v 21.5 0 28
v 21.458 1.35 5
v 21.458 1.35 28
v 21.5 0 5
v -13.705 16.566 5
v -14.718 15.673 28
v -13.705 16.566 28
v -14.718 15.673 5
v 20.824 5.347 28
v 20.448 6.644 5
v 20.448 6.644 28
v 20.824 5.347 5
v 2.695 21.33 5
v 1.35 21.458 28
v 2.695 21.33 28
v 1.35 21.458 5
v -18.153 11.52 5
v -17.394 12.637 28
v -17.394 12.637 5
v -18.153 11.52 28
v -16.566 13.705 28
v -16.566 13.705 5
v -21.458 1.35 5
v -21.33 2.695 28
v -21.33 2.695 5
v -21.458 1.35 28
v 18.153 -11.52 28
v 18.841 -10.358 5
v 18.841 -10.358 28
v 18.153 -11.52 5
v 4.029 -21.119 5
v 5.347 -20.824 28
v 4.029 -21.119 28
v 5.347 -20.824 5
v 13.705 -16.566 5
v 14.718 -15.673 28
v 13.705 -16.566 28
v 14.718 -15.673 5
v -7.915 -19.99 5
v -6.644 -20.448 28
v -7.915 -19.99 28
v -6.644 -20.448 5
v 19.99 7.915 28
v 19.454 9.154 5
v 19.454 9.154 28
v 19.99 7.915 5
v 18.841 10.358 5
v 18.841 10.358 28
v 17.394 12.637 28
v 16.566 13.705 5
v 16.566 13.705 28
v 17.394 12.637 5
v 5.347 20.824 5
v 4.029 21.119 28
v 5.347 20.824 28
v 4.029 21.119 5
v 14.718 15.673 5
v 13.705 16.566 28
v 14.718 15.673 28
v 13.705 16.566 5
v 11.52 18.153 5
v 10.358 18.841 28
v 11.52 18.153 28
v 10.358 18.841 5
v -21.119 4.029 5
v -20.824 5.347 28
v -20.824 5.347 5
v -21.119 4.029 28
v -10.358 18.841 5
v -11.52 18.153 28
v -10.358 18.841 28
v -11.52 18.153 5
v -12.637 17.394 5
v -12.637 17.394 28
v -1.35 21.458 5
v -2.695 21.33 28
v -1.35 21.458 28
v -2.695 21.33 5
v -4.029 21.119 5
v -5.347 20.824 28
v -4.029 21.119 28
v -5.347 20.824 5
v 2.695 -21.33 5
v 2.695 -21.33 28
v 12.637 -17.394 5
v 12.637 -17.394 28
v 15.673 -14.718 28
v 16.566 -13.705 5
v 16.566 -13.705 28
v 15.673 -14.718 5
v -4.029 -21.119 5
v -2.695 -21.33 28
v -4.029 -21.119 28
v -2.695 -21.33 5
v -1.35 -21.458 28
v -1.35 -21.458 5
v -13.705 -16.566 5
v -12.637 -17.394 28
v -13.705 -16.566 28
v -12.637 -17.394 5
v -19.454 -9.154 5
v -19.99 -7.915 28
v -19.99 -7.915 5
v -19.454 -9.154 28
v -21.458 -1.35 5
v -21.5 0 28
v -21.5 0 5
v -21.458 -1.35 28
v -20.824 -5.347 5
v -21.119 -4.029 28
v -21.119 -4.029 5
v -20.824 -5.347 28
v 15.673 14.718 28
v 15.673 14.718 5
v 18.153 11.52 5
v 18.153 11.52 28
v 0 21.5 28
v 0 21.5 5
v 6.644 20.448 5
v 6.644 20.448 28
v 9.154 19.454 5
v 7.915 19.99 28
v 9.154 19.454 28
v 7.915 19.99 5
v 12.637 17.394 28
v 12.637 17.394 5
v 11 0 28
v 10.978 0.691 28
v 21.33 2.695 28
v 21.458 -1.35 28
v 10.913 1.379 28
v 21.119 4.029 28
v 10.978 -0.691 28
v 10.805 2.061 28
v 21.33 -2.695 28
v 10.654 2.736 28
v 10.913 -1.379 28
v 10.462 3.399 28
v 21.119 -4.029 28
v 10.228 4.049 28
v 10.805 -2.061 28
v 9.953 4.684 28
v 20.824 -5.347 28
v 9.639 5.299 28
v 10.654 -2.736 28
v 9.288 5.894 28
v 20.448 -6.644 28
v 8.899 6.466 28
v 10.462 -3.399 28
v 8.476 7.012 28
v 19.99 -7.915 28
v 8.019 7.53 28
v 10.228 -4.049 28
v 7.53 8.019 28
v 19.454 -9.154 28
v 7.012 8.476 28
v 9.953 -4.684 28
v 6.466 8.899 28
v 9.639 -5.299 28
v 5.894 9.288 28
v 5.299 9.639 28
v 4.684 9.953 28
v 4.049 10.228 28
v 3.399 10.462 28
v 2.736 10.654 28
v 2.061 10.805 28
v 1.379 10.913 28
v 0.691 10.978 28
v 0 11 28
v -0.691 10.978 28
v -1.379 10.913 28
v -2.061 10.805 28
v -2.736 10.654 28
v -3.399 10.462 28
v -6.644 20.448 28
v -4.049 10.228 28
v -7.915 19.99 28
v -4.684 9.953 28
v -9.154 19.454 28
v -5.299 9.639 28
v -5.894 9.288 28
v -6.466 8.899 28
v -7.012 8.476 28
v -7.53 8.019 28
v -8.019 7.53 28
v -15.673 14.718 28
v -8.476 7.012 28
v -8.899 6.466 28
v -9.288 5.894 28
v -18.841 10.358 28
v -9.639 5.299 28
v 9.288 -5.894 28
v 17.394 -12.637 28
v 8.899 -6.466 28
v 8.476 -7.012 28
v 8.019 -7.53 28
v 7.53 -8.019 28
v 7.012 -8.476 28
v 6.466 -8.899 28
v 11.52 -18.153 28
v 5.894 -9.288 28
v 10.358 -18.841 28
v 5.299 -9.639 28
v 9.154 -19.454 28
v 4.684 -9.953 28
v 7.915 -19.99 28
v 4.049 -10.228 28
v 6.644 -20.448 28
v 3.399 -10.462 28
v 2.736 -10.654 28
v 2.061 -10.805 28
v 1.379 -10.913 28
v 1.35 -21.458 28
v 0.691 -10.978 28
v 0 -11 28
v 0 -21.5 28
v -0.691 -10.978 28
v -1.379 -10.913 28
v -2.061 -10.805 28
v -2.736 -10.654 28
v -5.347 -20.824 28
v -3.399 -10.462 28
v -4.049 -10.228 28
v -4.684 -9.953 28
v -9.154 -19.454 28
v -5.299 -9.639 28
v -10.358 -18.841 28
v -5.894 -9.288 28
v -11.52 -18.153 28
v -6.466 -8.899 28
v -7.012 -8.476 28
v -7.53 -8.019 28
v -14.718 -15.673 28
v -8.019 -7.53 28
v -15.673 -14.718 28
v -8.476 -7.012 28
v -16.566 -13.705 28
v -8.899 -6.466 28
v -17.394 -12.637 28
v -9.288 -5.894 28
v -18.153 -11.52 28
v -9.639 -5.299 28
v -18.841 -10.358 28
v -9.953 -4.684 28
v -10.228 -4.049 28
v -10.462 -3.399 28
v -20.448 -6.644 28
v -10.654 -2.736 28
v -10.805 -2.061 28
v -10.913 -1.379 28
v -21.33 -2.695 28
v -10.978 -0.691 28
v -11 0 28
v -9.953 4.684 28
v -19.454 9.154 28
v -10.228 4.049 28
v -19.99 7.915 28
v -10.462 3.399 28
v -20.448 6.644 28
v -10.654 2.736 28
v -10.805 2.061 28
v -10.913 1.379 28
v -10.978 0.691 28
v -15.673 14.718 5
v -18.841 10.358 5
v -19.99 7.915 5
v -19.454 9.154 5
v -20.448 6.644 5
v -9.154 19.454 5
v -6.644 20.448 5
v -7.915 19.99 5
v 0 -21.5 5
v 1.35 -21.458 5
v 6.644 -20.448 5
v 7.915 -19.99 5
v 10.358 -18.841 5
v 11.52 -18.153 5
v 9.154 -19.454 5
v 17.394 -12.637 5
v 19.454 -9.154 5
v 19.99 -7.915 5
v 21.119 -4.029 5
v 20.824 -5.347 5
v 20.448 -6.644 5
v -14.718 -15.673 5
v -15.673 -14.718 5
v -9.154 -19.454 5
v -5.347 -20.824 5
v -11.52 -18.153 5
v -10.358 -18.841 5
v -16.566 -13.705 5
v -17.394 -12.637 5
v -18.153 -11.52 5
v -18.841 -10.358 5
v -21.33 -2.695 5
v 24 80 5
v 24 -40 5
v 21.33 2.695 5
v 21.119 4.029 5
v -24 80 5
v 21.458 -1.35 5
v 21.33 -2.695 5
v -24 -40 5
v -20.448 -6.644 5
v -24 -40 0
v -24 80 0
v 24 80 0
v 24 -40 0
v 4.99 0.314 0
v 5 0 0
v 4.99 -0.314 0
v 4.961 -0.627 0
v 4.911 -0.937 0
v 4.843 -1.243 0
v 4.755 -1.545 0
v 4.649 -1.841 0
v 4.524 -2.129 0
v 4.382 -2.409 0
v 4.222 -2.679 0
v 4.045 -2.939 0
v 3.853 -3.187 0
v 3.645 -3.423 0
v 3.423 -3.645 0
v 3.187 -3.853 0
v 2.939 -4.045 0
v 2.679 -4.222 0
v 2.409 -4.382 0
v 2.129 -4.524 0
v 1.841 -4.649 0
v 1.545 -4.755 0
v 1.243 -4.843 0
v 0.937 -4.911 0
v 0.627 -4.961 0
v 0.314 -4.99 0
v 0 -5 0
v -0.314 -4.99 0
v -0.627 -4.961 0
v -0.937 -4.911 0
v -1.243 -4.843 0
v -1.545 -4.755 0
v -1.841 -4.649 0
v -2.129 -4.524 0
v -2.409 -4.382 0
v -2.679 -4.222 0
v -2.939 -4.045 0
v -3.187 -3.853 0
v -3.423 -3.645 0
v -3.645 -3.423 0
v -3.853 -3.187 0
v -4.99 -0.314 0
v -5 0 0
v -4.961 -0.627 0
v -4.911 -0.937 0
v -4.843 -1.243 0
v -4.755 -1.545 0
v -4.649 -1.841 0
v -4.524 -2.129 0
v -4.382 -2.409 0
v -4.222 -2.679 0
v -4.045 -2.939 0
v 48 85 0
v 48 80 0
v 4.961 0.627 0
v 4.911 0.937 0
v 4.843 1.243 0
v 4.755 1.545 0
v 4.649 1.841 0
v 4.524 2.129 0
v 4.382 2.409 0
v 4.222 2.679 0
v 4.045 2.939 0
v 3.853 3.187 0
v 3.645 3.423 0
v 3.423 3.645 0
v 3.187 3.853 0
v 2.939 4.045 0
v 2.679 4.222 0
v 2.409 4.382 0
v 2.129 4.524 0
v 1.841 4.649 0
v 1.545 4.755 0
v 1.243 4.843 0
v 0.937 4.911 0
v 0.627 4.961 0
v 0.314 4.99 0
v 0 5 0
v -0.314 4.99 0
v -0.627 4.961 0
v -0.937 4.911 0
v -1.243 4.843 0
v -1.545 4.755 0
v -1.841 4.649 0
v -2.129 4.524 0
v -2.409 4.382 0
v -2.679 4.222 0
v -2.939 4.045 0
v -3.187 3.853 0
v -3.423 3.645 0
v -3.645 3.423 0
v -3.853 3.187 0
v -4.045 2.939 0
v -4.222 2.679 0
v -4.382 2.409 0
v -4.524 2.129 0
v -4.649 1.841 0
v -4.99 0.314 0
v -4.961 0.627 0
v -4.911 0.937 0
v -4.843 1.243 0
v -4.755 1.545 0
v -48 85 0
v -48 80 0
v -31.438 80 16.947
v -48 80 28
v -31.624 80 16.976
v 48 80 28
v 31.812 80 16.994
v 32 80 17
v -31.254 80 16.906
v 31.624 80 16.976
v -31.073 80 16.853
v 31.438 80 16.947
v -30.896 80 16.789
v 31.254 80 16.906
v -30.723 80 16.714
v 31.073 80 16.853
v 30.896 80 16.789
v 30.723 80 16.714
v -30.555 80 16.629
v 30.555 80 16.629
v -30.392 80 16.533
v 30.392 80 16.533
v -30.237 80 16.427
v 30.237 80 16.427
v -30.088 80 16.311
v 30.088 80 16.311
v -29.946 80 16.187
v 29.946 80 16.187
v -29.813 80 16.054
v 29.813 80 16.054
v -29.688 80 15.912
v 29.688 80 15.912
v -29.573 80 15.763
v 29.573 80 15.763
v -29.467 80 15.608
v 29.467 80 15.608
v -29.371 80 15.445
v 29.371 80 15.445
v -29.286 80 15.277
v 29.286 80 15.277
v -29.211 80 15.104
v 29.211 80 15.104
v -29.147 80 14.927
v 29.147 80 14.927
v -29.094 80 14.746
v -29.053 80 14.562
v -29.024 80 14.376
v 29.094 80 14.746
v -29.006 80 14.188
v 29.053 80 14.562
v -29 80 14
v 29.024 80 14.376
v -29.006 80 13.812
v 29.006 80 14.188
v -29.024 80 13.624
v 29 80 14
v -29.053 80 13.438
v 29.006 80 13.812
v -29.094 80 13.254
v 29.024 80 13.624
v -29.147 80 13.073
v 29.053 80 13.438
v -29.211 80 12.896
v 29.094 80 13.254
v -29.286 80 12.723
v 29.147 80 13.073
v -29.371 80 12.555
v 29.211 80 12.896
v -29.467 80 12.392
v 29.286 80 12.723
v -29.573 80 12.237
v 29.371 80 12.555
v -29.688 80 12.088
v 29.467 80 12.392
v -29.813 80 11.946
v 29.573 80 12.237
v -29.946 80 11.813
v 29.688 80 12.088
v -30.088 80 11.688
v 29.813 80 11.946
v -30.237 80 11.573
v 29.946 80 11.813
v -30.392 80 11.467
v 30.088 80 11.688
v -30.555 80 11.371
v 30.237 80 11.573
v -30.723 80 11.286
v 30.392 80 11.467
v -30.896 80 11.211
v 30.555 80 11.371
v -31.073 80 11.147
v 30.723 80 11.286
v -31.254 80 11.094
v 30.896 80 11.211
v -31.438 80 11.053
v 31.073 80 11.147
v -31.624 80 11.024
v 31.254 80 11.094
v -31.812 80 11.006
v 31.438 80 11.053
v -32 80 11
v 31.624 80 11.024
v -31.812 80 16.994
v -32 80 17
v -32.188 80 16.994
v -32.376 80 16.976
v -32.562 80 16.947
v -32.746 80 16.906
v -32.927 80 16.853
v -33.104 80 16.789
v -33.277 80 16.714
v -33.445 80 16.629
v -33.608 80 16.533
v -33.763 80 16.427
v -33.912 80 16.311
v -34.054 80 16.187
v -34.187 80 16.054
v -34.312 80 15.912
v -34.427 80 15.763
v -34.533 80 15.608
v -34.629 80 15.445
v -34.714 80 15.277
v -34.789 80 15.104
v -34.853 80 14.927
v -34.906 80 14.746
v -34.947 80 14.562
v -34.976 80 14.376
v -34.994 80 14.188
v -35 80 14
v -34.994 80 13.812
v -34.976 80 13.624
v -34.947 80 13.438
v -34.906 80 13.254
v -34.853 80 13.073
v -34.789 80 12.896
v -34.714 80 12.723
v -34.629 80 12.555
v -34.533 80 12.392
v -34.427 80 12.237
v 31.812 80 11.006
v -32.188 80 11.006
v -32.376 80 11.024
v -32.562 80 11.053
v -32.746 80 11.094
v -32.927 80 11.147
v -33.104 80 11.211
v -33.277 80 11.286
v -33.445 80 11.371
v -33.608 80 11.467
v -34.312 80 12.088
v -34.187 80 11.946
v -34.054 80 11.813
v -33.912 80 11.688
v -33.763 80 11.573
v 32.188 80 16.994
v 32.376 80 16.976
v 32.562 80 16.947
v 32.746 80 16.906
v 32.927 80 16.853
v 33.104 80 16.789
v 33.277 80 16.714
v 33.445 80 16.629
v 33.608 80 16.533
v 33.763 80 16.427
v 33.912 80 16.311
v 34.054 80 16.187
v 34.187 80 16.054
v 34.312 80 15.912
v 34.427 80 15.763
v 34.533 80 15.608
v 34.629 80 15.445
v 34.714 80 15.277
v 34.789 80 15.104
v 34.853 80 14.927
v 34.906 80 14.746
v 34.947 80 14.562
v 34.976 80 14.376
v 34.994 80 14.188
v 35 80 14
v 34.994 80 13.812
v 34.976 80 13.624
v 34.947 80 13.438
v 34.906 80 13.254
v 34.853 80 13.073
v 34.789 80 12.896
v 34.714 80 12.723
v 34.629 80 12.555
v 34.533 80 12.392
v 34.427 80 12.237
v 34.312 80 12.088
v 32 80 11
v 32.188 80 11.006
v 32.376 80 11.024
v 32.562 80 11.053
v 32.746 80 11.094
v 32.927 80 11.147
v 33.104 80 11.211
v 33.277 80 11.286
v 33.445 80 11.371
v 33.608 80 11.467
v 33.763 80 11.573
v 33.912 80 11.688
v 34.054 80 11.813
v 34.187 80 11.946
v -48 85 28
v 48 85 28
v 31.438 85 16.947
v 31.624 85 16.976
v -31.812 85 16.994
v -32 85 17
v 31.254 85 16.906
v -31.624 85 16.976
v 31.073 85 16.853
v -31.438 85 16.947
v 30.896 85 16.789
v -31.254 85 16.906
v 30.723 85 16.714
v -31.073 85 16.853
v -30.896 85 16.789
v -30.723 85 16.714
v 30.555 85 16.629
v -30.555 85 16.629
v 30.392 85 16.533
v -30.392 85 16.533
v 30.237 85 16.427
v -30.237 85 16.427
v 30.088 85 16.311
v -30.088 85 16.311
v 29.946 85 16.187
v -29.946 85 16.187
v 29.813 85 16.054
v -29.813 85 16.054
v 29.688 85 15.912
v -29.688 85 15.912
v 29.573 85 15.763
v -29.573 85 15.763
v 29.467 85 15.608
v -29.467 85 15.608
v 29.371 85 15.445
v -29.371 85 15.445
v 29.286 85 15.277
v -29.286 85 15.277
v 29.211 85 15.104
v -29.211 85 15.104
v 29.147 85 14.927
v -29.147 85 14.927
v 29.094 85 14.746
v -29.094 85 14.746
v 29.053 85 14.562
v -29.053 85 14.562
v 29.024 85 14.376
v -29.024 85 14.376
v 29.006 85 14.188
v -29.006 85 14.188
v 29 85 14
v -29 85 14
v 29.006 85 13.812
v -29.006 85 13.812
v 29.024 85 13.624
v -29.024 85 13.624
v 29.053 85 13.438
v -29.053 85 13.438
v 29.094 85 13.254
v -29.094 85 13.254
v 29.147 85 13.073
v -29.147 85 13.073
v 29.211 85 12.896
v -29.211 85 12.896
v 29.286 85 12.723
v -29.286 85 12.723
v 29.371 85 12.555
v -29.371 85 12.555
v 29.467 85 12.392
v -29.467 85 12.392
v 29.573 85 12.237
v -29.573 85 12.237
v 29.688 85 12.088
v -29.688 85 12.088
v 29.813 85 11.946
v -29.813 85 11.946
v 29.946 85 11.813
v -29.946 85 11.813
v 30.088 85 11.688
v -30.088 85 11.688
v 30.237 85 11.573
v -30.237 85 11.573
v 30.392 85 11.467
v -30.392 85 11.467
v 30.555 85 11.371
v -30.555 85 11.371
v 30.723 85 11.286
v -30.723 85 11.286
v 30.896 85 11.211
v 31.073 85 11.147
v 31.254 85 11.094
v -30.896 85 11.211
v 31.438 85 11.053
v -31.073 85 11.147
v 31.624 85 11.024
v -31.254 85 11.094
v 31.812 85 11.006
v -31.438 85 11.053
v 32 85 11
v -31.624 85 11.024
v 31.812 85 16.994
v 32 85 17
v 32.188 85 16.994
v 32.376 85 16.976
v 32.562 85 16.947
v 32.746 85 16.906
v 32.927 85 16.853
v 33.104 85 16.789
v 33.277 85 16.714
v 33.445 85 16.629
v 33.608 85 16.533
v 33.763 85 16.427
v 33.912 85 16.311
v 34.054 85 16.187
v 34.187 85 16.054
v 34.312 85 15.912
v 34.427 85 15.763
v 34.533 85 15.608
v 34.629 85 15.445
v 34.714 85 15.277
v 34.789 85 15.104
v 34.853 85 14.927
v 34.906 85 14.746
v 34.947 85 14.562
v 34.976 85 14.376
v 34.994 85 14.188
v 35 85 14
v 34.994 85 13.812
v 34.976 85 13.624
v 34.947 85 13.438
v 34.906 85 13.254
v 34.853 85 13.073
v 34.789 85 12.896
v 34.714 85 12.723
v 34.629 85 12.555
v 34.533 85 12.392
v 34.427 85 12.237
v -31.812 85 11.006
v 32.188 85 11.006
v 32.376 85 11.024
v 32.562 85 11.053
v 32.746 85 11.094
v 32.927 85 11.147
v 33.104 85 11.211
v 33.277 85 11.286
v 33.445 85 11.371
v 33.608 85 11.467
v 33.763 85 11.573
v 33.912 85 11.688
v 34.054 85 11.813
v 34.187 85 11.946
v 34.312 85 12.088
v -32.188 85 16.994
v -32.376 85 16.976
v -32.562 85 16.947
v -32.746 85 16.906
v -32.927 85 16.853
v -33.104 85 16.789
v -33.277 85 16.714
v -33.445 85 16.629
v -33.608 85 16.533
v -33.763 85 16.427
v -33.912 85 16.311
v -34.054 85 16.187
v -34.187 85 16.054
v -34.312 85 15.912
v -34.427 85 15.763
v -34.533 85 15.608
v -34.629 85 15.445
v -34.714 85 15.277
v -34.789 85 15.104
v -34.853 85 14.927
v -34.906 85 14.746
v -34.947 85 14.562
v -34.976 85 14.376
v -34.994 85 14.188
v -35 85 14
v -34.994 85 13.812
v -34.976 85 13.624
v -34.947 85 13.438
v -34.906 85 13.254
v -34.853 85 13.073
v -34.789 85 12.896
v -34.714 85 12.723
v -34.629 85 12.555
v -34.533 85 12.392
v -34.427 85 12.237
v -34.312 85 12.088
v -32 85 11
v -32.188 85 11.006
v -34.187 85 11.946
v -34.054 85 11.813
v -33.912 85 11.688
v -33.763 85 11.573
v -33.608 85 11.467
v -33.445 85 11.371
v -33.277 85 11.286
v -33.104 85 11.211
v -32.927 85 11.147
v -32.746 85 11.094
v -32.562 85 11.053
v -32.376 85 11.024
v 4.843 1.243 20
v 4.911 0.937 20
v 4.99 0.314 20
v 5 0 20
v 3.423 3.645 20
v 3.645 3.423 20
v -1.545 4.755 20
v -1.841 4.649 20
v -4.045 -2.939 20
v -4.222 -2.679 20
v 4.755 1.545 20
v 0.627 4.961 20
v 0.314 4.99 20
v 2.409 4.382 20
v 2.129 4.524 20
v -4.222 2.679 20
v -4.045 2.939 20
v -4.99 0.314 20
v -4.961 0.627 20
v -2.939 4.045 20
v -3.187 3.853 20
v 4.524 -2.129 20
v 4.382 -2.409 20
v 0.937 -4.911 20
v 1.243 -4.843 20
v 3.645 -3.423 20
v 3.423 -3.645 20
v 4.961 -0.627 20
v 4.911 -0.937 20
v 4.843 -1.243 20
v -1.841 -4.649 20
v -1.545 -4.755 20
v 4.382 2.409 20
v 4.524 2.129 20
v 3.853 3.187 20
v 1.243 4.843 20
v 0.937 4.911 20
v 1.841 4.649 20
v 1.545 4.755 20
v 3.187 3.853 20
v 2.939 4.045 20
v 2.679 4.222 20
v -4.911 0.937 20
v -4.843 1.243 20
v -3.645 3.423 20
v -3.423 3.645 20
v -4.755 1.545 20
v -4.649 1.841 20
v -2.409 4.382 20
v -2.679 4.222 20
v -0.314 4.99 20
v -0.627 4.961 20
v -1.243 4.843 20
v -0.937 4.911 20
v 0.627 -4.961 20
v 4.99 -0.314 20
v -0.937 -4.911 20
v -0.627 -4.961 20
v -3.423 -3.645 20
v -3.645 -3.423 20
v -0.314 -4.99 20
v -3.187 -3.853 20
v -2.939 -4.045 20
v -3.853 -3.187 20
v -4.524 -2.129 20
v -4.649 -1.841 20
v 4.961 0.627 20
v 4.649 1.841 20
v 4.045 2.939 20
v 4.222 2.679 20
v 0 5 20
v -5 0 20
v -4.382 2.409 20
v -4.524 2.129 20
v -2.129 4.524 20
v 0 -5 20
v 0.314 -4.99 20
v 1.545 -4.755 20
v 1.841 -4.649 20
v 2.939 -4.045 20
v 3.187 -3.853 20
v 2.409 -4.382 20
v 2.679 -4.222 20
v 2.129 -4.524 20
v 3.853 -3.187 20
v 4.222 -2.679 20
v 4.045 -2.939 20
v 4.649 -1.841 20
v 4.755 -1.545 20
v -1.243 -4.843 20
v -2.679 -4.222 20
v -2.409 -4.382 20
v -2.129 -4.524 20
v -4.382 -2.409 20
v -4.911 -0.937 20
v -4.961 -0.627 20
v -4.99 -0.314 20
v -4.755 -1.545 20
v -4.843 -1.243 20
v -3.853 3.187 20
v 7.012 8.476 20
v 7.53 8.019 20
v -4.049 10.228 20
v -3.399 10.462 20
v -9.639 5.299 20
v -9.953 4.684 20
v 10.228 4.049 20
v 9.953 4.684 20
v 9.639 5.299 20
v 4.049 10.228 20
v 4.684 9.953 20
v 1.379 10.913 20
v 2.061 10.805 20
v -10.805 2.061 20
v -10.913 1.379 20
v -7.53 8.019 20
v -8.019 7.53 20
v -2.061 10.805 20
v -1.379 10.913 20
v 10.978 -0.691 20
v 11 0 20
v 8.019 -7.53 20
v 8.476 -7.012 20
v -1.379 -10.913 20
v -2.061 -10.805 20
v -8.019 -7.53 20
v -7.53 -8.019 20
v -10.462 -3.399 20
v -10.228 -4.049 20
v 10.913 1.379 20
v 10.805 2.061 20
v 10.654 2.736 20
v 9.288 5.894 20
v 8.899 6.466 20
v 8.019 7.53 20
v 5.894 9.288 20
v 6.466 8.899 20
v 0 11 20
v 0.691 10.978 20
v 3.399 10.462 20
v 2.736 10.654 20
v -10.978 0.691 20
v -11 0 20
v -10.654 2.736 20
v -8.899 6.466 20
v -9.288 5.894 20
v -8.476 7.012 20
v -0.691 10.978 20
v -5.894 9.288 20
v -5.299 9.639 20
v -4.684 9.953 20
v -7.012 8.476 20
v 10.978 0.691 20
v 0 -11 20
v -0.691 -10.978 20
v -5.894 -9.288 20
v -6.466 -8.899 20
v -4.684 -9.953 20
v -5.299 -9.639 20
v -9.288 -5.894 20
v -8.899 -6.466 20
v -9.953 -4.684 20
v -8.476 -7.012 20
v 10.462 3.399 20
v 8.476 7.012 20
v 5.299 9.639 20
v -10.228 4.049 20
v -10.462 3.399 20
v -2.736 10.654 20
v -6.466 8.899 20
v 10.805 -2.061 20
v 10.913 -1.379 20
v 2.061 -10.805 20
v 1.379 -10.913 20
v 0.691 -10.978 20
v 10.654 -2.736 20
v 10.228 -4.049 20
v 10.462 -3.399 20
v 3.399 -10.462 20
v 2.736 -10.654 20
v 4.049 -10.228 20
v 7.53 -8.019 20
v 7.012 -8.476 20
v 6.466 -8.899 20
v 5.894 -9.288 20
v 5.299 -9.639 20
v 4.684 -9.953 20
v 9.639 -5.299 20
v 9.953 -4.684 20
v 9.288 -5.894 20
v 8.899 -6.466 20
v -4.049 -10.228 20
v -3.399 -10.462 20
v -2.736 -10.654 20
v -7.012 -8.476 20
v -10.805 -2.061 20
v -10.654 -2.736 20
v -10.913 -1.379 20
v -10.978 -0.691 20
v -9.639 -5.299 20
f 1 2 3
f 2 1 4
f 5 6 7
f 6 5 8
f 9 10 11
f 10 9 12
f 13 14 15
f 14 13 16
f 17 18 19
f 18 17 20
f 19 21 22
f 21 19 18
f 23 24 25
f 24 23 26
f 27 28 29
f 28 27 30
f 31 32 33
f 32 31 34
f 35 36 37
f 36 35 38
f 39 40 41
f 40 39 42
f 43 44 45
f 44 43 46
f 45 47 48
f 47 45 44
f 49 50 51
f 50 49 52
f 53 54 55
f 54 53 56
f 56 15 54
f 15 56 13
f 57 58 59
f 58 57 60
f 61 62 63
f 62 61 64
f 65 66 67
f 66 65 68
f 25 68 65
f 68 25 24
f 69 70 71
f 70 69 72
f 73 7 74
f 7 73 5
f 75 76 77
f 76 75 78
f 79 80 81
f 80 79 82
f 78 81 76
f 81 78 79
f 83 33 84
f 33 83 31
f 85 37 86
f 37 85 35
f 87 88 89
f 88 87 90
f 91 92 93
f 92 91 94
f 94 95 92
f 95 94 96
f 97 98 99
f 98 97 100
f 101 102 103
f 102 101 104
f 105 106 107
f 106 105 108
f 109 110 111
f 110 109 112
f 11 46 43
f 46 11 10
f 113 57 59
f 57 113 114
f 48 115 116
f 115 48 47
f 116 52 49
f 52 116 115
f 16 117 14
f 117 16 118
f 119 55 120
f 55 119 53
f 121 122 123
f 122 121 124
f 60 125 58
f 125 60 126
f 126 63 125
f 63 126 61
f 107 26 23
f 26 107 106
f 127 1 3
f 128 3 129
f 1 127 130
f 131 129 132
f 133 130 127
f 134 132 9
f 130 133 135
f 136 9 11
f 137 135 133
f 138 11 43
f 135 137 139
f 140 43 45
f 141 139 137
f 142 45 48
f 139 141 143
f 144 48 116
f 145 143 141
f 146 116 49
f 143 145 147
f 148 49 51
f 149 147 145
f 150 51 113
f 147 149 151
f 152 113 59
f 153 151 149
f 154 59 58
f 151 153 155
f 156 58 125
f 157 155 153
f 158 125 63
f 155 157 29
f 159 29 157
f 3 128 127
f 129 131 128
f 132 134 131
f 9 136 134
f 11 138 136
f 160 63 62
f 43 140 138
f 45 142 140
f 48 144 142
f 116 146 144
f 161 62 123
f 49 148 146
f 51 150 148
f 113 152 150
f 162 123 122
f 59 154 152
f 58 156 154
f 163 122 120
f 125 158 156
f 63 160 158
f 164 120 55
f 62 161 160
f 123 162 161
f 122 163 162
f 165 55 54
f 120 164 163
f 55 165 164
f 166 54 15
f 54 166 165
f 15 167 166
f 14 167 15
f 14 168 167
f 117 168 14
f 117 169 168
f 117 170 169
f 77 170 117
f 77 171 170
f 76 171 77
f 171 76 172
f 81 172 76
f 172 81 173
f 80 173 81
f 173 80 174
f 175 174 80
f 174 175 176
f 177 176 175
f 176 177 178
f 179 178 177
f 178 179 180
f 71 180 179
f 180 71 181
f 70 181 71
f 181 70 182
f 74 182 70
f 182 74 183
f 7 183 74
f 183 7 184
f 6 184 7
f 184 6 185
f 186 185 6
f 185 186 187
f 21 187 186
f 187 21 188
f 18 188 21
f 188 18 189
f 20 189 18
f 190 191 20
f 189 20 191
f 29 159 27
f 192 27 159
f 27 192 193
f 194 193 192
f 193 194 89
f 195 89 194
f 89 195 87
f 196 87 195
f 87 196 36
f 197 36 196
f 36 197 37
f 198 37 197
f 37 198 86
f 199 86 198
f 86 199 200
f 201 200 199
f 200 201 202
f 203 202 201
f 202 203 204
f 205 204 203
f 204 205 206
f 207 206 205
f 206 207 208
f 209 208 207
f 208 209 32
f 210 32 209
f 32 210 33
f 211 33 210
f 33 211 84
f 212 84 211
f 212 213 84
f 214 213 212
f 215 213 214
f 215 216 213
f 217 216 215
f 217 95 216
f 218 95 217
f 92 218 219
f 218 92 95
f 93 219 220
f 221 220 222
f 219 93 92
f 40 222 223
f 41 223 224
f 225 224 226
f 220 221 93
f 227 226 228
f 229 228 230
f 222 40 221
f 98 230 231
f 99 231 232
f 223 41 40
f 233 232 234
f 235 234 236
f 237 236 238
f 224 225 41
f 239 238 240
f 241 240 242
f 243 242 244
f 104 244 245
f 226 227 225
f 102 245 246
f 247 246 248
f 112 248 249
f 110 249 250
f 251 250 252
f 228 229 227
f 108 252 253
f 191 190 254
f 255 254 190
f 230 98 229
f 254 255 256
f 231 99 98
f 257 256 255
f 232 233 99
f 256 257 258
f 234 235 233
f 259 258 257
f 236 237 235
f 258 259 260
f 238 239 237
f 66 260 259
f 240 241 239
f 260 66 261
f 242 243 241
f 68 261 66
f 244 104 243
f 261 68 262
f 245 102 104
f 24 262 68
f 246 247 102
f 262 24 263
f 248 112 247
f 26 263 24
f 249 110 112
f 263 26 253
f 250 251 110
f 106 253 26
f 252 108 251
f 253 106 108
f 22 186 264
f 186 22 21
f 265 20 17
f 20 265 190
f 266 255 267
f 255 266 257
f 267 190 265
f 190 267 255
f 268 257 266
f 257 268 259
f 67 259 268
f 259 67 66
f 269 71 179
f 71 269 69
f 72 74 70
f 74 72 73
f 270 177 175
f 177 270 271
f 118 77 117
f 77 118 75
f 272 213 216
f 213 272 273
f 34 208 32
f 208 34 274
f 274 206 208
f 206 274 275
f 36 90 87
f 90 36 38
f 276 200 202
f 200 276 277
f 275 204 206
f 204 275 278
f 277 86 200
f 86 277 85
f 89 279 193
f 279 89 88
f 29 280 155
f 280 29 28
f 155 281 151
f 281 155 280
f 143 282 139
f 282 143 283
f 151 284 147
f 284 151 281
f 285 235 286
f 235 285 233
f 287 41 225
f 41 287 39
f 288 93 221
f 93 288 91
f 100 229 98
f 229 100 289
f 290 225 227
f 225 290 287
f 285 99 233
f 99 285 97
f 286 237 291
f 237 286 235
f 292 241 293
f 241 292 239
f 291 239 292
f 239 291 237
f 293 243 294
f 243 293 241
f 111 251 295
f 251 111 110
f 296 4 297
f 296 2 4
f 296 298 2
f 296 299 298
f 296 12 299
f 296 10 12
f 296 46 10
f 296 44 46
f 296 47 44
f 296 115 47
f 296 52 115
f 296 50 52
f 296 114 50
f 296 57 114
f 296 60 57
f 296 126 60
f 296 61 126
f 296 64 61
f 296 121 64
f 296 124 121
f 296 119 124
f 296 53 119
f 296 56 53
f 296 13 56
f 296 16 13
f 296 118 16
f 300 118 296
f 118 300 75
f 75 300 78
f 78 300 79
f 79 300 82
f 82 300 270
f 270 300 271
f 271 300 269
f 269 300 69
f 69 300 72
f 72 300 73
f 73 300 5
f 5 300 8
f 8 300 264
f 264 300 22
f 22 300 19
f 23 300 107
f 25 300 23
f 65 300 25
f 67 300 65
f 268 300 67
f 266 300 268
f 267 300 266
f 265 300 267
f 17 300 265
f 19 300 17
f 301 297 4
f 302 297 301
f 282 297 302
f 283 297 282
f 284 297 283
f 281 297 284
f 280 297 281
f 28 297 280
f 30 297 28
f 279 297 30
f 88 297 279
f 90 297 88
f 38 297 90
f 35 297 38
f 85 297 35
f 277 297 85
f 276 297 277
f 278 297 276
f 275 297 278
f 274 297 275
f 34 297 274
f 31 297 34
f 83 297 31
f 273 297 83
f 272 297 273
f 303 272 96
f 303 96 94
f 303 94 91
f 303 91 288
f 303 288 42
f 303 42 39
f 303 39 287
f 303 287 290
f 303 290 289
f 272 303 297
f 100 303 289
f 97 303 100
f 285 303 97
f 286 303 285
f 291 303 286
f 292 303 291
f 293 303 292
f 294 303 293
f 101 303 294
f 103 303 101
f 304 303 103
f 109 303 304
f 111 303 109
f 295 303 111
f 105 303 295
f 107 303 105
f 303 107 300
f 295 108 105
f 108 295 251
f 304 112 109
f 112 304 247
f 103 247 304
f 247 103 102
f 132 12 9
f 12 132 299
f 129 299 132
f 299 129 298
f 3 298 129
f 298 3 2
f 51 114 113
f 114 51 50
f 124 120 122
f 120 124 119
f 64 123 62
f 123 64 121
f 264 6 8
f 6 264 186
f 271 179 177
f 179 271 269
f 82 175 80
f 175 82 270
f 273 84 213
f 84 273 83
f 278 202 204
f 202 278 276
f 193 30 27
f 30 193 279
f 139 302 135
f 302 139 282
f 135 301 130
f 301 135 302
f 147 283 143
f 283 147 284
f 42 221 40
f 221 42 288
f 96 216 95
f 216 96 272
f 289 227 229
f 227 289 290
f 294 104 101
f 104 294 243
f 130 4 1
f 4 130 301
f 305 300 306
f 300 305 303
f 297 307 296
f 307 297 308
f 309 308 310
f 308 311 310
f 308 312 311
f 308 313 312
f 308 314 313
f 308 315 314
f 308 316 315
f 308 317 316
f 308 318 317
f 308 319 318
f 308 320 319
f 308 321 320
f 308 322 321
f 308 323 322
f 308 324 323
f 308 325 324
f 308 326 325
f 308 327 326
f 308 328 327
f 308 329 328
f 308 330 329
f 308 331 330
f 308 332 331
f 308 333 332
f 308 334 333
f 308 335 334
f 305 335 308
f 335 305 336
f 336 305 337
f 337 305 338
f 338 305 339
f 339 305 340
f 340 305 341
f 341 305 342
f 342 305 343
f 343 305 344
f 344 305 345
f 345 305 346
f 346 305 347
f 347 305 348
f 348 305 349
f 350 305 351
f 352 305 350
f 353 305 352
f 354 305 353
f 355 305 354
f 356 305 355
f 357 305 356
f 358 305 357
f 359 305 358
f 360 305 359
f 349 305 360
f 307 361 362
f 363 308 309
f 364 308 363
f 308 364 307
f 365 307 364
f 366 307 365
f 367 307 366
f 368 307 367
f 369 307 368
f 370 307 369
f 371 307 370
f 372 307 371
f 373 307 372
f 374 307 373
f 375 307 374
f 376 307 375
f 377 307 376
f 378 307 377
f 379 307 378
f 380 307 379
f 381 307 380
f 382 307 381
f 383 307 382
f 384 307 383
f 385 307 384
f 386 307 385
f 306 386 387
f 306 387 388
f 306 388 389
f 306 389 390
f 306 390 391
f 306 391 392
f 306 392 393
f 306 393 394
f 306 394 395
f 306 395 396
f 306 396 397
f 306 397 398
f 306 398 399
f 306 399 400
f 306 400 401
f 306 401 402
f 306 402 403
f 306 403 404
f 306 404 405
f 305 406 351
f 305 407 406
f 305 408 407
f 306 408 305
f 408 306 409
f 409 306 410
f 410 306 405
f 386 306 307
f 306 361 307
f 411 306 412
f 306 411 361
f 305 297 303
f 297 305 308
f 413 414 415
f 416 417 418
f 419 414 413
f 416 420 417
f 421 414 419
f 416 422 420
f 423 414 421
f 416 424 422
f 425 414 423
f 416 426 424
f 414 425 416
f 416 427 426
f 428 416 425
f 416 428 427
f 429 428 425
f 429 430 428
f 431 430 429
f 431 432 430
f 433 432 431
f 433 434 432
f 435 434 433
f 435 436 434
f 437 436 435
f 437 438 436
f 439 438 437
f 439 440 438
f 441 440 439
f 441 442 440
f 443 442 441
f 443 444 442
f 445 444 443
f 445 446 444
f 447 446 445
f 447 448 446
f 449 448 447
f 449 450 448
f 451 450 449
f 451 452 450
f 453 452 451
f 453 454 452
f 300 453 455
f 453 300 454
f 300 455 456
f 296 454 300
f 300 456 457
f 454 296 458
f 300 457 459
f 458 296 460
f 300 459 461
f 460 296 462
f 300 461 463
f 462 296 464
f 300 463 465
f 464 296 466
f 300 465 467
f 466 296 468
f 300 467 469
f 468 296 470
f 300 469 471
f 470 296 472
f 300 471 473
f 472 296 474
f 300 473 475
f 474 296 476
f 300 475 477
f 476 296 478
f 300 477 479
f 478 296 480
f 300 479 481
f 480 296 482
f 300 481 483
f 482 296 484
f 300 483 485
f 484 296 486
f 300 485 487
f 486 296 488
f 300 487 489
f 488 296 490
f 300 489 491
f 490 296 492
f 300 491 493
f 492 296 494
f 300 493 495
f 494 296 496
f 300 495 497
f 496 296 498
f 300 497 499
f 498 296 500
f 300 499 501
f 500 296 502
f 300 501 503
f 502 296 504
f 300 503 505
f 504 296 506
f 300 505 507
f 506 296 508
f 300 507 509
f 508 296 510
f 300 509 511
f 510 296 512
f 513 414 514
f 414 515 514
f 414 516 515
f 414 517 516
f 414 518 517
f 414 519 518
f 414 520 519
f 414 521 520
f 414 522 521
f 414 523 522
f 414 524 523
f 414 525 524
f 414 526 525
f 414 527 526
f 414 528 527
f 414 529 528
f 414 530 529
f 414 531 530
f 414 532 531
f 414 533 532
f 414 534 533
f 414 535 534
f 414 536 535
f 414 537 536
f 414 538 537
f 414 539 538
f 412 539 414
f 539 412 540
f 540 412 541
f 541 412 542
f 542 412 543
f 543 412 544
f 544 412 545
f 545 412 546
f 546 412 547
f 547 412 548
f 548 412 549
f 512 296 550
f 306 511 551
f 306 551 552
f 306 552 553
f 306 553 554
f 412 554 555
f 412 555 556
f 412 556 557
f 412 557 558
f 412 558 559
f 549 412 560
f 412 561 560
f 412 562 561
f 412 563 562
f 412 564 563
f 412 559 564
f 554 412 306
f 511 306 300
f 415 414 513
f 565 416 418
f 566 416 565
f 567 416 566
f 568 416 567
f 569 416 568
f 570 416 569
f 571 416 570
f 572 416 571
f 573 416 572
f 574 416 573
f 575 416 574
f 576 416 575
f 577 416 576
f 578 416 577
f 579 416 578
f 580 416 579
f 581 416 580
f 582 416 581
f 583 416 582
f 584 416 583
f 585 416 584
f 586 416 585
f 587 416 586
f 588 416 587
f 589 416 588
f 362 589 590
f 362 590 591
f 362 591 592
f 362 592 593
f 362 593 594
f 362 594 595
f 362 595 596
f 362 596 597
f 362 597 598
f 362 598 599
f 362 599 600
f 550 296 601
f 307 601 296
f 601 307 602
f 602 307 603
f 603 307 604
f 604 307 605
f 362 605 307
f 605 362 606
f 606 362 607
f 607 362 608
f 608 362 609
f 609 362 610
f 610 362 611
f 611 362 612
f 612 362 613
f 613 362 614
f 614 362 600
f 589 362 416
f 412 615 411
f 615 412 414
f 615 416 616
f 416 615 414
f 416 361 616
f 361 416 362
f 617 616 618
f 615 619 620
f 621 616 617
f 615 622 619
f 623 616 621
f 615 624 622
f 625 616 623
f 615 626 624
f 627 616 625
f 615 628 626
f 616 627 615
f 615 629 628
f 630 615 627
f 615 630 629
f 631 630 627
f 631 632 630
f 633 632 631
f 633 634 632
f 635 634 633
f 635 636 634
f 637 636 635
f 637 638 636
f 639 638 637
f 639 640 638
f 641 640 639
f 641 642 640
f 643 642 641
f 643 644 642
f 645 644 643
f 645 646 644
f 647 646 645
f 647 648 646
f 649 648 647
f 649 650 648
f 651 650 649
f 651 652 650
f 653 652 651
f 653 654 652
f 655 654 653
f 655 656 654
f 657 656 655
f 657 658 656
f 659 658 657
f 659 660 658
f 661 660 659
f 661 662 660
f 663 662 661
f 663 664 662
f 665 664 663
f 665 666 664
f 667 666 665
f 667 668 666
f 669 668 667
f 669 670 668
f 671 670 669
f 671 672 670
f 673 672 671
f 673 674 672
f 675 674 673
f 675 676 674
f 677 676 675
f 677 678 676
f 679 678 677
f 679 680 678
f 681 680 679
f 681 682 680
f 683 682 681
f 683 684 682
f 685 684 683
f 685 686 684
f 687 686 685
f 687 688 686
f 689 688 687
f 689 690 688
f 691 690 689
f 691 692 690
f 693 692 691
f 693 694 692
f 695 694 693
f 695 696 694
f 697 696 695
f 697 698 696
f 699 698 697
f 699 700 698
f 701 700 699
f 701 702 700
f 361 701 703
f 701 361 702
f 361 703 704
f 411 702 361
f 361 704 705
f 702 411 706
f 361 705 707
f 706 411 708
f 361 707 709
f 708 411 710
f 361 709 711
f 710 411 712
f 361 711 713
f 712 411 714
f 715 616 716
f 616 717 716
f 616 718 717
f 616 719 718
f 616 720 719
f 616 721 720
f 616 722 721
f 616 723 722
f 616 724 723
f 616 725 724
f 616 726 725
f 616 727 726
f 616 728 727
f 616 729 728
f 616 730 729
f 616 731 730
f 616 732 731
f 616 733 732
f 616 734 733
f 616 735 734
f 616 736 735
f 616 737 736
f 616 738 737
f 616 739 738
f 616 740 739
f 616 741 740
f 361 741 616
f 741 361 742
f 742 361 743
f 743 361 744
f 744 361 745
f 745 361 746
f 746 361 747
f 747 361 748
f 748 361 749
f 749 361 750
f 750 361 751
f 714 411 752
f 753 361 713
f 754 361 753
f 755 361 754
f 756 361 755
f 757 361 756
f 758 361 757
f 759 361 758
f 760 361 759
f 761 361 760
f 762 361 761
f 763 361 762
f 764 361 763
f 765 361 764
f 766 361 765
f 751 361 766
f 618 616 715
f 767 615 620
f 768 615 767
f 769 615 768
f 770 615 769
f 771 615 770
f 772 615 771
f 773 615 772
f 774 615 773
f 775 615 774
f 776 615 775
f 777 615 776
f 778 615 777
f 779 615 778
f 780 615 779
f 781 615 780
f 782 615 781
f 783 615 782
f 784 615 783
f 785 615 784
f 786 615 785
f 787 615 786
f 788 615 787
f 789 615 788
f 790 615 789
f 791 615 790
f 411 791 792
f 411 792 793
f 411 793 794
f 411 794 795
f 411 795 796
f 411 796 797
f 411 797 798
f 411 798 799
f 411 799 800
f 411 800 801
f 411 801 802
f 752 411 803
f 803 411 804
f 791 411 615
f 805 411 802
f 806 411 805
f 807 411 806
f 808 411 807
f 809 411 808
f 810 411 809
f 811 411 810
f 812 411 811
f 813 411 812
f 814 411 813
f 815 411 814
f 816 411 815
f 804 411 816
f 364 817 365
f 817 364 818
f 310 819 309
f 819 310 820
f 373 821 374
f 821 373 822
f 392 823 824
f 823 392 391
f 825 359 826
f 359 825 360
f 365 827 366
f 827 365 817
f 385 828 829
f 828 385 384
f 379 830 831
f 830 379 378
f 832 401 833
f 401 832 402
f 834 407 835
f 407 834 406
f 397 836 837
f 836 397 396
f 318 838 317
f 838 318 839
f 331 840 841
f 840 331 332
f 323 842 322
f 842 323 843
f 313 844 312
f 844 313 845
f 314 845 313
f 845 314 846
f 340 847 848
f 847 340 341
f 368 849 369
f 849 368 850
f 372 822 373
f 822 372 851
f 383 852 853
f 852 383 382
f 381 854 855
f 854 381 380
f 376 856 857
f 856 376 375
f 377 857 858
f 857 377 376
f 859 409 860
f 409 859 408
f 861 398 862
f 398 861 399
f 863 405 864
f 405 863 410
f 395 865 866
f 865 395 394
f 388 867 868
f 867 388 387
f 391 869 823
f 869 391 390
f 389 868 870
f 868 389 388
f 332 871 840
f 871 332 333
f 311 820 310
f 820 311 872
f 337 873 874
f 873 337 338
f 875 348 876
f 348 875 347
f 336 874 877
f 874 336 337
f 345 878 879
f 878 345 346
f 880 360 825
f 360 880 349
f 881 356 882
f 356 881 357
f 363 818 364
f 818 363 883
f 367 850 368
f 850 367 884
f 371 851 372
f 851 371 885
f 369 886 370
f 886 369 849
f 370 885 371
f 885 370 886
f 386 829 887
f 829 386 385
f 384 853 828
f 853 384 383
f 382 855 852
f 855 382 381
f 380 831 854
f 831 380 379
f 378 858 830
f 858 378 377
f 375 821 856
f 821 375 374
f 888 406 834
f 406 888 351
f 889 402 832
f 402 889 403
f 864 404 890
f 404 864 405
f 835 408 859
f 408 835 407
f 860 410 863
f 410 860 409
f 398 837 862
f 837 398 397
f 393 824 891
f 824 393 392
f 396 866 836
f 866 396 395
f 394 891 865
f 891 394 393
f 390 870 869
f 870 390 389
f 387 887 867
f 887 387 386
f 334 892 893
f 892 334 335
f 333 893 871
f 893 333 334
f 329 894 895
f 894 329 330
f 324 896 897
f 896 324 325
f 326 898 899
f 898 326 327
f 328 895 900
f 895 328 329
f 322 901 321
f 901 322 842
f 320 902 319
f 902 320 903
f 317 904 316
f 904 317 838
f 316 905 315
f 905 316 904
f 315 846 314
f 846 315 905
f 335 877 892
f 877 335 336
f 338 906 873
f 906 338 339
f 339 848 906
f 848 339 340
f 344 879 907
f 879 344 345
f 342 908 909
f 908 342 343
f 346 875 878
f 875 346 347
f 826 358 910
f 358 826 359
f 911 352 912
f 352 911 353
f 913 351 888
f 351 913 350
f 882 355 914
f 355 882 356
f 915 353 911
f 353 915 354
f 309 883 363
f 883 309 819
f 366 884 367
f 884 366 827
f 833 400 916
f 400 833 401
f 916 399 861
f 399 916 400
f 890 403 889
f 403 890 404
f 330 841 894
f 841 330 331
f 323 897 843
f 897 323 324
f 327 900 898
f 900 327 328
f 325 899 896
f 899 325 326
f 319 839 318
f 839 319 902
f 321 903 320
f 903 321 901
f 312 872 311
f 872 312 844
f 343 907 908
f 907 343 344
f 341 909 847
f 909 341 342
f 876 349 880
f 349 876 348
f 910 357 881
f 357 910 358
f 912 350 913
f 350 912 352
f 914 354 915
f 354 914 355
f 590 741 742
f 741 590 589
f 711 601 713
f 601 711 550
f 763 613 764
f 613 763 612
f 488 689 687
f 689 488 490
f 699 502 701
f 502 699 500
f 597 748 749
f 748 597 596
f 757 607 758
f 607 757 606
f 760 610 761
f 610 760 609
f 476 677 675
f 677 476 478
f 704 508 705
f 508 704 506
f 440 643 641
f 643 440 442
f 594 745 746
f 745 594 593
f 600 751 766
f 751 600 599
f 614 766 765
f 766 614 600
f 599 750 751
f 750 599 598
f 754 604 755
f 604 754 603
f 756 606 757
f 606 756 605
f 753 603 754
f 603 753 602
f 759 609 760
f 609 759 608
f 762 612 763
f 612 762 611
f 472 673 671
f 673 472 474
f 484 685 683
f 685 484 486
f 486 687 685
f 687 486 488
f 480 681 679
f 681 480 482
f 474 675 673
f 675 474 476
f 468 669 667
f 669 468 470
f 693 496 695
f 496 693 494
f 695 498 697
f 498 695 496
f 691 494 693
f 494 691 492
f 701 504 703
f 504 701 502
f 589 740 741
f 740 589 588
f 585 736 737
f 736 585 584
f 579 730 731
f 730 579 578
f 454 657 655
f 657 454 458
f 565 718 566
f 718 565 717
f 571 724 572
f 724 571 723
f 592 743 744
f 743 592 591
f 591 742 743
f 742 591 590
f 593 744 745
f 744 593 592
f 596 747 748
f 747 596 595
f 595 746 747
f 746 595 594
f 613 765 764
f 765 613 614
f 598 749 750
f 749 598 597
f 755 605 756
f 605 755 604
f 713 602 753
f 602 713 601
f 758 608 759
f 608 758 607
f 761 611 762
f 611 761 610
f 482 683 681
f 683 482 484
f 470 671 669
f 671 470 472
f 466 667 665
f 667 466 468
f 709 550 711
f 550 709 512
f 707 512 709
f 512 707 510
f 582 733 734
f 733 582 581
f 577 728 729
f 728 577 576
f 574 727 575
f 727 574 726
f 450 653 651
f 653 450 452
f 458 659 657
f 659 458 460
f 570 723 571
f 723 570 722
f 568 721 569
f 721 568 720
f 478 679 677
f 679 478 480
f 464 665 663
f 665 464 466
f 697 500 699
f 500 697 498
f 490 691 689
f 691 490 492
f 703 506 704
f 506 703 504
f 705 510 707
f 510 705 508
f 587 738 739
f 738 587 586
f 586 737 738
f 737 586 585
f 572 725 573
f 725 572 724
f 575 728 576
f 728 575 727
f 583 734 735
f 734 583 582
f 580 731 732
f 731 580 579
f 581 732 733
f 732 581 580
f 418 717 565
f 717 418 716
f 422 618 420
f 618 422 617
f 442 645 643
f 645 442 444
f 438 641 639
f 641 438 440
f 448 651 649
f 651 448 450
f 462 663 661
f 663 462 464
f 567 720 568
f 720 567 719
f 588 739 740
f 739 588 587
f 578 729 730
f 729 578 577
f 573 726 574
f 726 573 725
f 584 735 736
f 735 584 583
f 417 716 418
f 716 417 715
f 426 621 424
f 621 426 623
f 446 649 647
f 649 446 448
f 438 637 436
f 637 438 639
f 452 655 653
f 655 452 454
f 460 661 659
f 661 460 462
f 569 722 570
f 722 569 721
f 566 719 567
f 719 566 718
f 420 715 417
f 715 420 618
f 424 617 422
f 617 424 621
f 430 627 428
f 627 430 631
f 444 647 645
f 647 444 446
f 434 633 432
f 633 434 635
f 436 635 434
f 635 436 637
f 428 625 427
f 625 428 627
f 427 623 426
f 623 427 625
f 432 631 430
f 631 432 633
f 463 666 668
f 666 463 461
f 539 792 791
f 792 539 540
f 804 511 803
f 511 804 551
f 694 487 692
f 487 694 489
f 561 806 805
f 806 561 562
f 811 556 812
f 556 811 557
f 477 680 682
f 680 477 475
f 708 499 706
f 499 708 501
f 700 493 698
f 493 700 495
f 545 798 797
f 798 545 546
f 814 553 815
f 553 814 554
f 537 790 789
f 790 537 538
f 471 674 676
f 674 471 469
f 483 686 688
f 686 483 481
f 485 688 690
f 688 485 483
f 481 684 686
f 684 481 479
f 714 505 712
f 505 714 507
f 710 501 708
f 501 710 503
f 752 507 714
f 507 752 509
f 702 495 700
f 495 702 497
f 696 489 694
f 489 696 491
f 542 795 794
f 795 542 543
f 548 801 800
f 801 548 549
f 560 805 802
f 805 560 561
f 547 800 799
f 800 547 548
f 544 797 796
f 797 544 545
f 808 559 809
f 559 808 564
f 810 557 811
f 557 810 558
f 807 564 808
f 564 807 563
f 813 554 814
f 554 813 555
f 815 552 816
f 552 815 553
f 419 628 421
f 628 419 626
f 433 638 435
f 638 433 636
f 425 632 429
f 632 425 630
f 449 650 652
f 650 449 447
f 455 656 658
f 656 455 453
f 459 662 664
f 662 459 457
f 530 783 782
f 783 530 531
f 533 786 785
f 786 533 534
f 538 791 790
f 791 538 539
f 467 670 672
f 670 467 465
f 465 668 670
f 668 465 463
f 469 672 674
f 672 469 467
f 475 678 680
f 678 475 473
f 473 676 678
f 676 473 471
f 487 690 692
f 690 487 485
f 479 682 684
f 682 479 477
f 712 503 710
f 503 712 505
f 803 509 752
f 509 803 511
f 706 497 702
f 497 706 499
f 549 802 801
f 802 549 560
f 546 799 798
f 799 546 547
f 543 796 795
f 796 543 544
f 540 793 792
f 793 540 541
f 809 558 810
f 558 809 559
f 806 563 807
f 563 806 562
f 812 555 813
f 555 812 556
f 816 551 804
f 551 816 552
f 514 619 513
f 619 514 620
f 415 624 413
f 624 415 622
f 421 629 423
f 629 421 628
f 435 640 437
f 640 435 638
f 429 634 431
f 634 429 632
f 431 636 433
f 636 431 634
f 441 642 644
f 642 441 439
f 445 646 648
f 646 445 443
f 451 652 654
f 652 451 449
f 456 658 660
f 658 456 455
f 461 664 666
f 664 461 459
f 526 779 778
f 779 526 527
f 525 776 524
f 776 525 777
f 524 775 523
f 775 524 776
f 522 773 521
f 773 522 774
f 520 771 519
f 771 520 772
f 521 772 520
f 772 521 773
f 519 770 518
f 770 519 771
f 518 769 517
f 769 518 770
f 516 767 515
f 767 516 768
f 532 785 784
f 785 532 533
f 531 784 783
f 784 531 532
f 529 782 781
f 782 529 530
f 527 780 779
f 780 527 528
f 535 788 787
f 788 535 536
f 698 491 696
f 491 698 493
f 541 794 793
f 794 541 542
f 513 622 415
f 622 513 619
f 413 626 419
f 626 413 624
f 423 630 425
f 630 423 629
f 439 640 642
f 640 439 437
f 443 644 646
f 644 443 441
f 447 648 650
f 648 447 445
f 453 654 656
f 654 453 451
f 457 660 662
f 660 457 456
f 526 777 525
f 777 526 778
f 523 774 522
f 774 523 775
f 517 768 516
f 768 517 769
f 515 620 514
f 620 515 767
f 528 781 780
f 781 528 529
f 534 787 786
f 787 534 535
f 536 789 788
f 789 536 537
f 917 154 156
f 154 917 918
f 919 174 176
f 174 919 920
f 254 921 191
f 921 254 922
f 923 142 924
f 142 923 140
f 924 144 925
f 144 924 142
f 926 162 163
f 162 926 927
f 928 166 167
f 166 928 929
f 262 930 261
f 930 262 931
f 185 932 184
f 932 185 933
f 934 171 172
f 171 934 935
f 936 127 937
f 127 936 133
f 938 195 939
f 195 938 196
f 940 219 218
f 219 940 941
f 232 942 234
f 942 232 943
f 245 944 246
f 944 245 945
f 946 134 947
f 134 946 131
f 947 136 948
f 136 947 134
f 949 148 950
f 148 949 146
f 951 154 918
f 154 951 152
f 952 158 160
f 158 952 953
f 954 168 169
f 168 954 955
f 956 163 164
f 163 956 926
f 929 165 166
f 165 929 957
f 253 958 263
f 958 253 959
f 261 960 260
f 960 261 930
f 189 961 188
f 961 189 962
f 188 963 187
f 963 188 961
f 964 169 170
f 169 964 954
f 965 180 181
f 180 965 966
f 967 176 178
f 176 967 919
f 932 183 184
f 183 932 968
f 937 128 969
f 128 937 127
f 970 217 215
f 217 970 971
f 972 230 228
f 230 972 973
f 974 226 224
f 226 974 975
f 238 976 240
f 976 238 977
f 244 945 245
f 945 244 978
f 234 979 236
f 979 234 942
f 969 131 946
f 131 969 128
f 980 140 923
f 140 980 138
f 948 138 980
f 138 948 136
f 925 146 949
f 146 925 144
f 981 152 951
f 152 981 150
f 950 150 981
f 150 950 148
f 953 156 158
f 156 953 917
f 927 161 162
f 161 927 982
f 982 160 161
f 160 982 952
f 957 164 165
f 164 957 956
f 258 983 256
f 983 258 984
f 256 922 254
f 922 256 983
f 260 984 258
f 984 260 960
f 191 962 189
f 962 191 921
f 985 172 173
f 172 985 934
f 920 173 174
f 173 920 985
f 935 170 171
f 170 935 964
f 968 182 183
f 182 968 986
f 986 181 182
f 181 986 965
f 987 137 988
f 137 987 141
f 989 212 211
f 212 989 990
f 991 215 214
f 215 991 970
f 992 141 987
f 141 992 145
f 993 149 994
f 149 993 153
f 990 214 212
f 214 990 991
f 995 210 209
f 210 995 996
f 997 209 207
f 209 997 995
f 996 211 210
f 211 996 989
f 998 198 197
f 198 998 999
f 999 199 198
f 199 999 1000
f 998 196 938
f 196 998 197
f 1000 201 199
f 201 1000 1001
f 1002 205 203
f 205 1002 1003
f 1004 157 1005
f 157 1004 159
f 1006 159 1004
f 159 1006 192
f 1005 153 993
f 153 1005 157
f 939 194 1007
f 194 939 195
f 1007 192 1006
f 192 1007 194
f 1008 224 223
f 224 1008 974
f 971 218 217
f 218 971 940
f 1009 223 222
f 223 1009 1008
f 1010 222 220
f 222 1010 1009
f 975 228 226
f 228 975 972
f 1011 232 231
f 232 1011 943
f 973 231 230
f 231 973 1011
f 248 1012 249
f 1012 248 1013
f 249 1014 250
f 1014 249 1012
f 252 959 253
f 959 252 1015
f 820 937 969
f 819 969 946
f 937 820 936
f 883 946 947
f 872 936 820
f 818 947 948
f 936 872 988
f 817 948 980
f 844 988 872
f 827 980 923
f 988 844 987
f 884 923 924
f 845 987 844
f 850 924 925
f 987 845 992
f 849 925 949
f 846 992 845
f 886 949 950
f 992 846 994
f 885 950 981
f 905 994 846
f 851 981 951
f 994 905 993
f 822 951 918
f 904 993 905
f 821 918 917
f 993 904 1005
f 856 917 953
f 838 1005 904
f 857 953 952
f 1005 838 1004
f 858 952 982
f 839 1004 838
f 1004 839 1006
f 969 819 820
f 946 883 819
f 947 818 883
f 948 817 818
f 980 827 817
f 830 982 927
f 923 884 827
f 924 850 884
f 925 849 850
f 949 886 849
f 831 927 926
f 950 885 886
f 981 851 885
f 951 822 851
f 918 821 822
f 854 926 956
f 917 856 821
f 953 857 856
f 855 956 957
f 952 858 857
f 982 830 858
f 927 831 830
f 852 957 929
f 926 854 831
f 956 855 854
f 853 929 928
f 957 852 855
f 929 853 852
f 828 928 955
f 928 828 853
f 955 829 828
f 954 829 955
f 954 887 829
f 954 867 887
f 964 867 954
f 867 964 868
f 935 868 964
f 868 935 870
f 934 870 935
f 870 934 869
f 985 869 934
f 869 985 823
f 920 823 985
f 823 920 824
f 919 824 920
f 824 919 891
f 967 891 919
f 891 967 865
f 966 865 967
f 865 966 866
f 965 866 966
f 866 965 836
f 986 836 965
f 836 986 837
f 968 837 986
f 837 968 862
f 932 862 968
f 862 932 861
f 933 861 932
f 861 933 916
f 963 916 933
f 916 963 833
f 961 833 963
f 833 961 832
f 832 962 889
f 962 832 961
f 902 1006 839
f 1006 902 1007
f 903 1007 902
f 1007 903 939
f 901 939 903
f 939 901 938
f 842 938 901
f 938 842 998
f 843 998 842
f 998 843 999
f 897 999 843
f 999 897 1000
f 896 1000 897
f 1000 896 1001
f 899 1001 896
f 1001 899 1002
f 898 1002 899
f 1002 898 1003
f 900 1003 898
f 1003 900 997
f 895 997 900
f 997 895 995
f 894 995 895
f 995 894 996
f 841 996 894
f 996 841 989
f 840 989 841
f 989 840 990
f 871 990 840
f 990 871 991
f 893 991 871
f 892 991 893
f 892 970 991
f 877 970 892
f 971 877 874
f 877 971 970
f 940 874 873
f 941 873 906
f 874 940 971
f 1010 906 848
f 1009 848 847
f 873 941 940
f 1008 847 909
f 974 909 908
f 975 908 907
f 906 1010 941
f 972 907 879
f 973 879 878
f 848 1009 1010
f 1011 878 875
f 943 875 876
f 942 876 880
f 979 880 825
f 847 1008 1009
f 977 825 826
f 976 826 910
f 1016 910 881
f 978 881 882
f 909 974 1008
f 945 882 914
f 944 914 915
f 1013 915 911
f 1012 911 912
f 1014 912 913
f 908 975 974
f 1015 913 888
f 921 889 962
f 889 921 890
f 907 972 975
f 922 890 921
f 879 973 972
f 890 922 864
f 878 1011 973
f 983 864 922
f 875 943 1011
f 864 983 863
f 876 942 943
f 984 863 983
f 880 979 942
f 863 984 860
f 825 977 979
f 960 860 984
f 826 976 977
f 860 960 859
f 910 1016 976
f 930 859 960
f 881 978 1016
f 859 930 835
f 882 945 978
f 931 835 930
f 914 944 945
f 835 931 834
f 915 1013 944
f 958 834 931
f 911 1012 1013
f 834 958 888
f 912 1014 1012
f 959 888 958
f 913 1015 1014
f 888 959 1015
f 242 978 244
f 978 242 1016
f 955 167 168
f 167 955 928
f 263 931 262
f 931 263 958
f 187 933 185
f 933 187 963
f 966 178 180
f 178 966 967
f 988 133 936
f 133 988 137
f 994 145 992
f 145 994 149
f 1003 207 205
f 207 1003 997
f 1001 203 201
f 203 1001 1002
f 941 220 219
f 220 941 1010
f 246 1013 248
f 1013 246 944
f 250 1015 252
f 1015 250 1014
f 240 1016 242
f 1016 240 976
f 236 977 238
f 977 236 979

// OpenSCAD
// Andre Betz
// github@AndreBetz.de
// Halterung fuer Gegendruckfueller an einem Bohrmaschinenstaender
// Zwieselbrau.de

BohrHalterungD      = 43;
BohrHalterungH      = 23;
BohrHalterungRandD  = 5;
BohrHalterungRandH  = 5;
GegendruckFuellerD  = 10;
GrundplatteAbstand  = 80;
SchraubeD           = 6;
StopfenD            = 22; // durchmeser im GDA
GasAuslassH         = 44; //laenge gas ablass
StopfenH            = 26; //gummistopfen laenge
StopfenInline = StopfenH - (GasAuslassH - (BohrHalterungH + BohrHalterungRandH) );

$fn=100;

echo (StopfenInline);
difference()
{
    union()
    {
//        cylinder(h=BohrHalterungRandH,r=(BohrHalterungRandD+BohrHalterungD)/2,center=false);
        translate([0,0,BohrHalterungRandH]) cylinder(h=BohrHalterungH,r=BohrHalterungD/2,center=false);
//        translate([-(BohrHalterungD+BohrHalterungRandD)/2,0,0]) cube([BohrHalterungD+BohrHalterungRandD,GrundplatteAbstand,BohrHalterungRandH]);        
        translate([-(BohrHalterungD+BohrHalterungRandD)/2,-GrundplatteAbstand/2,0]) cube([BohrHalterungD+BohrHalterungRandD,GrundplatteAbstand+GrundplatteAbstand/2,BohrHalterungRandH]);        
        translate([-(BohrHalterungD+BohrHalterungRandD),GrundplatteAbstand,0]) cube([(BohrHalterungD+BohrHalterungRandD)*2,BohrHalterungRandH,BohrHalterungH+BohrHalterungRandH]);
        
    }
    translate([0,0,-1])
        cylinder(h=BohrHalterungH+BohrHalterungH+2,r=GegendruckFuellerD/2,center=false);
    translate([0,0,-1])
        cylinder(h=BohrHalterungRandH+2,r=SchraubeD/2,center=false);
    translate([(BohrHalterungD+BohrHalterungRandD)*2/3,GrundplatteAbstand-1,(BohrHalterungH+BohrHalterungRandH)/2])
        rotate([-90,0,0])
            cylinder(h=BohrHalterungRandH+2,r=SchraubeD/2,center=false);
    translate([-(BohrHalterungD+BohrHalterungRandD)*2/3,GrundplatteAbstand-1,(BohrHalterungH+BohrHalterungRandH)/2])
        rotate([-90,0,0])
            cylinder(h=BohrHalterungRandH+2,r=SchraubeD/2,center=false);
    // damit wird der Hub verringert.
    // ich hab einen Hub von 55mm
    //translate([0,0,-1]) cylinder(h=StopfenInline+2,r=StopfenD/2,center=false);
    translate([0,0,BohrHalterungRandH+BohrHalterungH-StopfenInline+2]) cylinder(h=StopfenInline+2,r=StopfenD/2,center=false);
}
